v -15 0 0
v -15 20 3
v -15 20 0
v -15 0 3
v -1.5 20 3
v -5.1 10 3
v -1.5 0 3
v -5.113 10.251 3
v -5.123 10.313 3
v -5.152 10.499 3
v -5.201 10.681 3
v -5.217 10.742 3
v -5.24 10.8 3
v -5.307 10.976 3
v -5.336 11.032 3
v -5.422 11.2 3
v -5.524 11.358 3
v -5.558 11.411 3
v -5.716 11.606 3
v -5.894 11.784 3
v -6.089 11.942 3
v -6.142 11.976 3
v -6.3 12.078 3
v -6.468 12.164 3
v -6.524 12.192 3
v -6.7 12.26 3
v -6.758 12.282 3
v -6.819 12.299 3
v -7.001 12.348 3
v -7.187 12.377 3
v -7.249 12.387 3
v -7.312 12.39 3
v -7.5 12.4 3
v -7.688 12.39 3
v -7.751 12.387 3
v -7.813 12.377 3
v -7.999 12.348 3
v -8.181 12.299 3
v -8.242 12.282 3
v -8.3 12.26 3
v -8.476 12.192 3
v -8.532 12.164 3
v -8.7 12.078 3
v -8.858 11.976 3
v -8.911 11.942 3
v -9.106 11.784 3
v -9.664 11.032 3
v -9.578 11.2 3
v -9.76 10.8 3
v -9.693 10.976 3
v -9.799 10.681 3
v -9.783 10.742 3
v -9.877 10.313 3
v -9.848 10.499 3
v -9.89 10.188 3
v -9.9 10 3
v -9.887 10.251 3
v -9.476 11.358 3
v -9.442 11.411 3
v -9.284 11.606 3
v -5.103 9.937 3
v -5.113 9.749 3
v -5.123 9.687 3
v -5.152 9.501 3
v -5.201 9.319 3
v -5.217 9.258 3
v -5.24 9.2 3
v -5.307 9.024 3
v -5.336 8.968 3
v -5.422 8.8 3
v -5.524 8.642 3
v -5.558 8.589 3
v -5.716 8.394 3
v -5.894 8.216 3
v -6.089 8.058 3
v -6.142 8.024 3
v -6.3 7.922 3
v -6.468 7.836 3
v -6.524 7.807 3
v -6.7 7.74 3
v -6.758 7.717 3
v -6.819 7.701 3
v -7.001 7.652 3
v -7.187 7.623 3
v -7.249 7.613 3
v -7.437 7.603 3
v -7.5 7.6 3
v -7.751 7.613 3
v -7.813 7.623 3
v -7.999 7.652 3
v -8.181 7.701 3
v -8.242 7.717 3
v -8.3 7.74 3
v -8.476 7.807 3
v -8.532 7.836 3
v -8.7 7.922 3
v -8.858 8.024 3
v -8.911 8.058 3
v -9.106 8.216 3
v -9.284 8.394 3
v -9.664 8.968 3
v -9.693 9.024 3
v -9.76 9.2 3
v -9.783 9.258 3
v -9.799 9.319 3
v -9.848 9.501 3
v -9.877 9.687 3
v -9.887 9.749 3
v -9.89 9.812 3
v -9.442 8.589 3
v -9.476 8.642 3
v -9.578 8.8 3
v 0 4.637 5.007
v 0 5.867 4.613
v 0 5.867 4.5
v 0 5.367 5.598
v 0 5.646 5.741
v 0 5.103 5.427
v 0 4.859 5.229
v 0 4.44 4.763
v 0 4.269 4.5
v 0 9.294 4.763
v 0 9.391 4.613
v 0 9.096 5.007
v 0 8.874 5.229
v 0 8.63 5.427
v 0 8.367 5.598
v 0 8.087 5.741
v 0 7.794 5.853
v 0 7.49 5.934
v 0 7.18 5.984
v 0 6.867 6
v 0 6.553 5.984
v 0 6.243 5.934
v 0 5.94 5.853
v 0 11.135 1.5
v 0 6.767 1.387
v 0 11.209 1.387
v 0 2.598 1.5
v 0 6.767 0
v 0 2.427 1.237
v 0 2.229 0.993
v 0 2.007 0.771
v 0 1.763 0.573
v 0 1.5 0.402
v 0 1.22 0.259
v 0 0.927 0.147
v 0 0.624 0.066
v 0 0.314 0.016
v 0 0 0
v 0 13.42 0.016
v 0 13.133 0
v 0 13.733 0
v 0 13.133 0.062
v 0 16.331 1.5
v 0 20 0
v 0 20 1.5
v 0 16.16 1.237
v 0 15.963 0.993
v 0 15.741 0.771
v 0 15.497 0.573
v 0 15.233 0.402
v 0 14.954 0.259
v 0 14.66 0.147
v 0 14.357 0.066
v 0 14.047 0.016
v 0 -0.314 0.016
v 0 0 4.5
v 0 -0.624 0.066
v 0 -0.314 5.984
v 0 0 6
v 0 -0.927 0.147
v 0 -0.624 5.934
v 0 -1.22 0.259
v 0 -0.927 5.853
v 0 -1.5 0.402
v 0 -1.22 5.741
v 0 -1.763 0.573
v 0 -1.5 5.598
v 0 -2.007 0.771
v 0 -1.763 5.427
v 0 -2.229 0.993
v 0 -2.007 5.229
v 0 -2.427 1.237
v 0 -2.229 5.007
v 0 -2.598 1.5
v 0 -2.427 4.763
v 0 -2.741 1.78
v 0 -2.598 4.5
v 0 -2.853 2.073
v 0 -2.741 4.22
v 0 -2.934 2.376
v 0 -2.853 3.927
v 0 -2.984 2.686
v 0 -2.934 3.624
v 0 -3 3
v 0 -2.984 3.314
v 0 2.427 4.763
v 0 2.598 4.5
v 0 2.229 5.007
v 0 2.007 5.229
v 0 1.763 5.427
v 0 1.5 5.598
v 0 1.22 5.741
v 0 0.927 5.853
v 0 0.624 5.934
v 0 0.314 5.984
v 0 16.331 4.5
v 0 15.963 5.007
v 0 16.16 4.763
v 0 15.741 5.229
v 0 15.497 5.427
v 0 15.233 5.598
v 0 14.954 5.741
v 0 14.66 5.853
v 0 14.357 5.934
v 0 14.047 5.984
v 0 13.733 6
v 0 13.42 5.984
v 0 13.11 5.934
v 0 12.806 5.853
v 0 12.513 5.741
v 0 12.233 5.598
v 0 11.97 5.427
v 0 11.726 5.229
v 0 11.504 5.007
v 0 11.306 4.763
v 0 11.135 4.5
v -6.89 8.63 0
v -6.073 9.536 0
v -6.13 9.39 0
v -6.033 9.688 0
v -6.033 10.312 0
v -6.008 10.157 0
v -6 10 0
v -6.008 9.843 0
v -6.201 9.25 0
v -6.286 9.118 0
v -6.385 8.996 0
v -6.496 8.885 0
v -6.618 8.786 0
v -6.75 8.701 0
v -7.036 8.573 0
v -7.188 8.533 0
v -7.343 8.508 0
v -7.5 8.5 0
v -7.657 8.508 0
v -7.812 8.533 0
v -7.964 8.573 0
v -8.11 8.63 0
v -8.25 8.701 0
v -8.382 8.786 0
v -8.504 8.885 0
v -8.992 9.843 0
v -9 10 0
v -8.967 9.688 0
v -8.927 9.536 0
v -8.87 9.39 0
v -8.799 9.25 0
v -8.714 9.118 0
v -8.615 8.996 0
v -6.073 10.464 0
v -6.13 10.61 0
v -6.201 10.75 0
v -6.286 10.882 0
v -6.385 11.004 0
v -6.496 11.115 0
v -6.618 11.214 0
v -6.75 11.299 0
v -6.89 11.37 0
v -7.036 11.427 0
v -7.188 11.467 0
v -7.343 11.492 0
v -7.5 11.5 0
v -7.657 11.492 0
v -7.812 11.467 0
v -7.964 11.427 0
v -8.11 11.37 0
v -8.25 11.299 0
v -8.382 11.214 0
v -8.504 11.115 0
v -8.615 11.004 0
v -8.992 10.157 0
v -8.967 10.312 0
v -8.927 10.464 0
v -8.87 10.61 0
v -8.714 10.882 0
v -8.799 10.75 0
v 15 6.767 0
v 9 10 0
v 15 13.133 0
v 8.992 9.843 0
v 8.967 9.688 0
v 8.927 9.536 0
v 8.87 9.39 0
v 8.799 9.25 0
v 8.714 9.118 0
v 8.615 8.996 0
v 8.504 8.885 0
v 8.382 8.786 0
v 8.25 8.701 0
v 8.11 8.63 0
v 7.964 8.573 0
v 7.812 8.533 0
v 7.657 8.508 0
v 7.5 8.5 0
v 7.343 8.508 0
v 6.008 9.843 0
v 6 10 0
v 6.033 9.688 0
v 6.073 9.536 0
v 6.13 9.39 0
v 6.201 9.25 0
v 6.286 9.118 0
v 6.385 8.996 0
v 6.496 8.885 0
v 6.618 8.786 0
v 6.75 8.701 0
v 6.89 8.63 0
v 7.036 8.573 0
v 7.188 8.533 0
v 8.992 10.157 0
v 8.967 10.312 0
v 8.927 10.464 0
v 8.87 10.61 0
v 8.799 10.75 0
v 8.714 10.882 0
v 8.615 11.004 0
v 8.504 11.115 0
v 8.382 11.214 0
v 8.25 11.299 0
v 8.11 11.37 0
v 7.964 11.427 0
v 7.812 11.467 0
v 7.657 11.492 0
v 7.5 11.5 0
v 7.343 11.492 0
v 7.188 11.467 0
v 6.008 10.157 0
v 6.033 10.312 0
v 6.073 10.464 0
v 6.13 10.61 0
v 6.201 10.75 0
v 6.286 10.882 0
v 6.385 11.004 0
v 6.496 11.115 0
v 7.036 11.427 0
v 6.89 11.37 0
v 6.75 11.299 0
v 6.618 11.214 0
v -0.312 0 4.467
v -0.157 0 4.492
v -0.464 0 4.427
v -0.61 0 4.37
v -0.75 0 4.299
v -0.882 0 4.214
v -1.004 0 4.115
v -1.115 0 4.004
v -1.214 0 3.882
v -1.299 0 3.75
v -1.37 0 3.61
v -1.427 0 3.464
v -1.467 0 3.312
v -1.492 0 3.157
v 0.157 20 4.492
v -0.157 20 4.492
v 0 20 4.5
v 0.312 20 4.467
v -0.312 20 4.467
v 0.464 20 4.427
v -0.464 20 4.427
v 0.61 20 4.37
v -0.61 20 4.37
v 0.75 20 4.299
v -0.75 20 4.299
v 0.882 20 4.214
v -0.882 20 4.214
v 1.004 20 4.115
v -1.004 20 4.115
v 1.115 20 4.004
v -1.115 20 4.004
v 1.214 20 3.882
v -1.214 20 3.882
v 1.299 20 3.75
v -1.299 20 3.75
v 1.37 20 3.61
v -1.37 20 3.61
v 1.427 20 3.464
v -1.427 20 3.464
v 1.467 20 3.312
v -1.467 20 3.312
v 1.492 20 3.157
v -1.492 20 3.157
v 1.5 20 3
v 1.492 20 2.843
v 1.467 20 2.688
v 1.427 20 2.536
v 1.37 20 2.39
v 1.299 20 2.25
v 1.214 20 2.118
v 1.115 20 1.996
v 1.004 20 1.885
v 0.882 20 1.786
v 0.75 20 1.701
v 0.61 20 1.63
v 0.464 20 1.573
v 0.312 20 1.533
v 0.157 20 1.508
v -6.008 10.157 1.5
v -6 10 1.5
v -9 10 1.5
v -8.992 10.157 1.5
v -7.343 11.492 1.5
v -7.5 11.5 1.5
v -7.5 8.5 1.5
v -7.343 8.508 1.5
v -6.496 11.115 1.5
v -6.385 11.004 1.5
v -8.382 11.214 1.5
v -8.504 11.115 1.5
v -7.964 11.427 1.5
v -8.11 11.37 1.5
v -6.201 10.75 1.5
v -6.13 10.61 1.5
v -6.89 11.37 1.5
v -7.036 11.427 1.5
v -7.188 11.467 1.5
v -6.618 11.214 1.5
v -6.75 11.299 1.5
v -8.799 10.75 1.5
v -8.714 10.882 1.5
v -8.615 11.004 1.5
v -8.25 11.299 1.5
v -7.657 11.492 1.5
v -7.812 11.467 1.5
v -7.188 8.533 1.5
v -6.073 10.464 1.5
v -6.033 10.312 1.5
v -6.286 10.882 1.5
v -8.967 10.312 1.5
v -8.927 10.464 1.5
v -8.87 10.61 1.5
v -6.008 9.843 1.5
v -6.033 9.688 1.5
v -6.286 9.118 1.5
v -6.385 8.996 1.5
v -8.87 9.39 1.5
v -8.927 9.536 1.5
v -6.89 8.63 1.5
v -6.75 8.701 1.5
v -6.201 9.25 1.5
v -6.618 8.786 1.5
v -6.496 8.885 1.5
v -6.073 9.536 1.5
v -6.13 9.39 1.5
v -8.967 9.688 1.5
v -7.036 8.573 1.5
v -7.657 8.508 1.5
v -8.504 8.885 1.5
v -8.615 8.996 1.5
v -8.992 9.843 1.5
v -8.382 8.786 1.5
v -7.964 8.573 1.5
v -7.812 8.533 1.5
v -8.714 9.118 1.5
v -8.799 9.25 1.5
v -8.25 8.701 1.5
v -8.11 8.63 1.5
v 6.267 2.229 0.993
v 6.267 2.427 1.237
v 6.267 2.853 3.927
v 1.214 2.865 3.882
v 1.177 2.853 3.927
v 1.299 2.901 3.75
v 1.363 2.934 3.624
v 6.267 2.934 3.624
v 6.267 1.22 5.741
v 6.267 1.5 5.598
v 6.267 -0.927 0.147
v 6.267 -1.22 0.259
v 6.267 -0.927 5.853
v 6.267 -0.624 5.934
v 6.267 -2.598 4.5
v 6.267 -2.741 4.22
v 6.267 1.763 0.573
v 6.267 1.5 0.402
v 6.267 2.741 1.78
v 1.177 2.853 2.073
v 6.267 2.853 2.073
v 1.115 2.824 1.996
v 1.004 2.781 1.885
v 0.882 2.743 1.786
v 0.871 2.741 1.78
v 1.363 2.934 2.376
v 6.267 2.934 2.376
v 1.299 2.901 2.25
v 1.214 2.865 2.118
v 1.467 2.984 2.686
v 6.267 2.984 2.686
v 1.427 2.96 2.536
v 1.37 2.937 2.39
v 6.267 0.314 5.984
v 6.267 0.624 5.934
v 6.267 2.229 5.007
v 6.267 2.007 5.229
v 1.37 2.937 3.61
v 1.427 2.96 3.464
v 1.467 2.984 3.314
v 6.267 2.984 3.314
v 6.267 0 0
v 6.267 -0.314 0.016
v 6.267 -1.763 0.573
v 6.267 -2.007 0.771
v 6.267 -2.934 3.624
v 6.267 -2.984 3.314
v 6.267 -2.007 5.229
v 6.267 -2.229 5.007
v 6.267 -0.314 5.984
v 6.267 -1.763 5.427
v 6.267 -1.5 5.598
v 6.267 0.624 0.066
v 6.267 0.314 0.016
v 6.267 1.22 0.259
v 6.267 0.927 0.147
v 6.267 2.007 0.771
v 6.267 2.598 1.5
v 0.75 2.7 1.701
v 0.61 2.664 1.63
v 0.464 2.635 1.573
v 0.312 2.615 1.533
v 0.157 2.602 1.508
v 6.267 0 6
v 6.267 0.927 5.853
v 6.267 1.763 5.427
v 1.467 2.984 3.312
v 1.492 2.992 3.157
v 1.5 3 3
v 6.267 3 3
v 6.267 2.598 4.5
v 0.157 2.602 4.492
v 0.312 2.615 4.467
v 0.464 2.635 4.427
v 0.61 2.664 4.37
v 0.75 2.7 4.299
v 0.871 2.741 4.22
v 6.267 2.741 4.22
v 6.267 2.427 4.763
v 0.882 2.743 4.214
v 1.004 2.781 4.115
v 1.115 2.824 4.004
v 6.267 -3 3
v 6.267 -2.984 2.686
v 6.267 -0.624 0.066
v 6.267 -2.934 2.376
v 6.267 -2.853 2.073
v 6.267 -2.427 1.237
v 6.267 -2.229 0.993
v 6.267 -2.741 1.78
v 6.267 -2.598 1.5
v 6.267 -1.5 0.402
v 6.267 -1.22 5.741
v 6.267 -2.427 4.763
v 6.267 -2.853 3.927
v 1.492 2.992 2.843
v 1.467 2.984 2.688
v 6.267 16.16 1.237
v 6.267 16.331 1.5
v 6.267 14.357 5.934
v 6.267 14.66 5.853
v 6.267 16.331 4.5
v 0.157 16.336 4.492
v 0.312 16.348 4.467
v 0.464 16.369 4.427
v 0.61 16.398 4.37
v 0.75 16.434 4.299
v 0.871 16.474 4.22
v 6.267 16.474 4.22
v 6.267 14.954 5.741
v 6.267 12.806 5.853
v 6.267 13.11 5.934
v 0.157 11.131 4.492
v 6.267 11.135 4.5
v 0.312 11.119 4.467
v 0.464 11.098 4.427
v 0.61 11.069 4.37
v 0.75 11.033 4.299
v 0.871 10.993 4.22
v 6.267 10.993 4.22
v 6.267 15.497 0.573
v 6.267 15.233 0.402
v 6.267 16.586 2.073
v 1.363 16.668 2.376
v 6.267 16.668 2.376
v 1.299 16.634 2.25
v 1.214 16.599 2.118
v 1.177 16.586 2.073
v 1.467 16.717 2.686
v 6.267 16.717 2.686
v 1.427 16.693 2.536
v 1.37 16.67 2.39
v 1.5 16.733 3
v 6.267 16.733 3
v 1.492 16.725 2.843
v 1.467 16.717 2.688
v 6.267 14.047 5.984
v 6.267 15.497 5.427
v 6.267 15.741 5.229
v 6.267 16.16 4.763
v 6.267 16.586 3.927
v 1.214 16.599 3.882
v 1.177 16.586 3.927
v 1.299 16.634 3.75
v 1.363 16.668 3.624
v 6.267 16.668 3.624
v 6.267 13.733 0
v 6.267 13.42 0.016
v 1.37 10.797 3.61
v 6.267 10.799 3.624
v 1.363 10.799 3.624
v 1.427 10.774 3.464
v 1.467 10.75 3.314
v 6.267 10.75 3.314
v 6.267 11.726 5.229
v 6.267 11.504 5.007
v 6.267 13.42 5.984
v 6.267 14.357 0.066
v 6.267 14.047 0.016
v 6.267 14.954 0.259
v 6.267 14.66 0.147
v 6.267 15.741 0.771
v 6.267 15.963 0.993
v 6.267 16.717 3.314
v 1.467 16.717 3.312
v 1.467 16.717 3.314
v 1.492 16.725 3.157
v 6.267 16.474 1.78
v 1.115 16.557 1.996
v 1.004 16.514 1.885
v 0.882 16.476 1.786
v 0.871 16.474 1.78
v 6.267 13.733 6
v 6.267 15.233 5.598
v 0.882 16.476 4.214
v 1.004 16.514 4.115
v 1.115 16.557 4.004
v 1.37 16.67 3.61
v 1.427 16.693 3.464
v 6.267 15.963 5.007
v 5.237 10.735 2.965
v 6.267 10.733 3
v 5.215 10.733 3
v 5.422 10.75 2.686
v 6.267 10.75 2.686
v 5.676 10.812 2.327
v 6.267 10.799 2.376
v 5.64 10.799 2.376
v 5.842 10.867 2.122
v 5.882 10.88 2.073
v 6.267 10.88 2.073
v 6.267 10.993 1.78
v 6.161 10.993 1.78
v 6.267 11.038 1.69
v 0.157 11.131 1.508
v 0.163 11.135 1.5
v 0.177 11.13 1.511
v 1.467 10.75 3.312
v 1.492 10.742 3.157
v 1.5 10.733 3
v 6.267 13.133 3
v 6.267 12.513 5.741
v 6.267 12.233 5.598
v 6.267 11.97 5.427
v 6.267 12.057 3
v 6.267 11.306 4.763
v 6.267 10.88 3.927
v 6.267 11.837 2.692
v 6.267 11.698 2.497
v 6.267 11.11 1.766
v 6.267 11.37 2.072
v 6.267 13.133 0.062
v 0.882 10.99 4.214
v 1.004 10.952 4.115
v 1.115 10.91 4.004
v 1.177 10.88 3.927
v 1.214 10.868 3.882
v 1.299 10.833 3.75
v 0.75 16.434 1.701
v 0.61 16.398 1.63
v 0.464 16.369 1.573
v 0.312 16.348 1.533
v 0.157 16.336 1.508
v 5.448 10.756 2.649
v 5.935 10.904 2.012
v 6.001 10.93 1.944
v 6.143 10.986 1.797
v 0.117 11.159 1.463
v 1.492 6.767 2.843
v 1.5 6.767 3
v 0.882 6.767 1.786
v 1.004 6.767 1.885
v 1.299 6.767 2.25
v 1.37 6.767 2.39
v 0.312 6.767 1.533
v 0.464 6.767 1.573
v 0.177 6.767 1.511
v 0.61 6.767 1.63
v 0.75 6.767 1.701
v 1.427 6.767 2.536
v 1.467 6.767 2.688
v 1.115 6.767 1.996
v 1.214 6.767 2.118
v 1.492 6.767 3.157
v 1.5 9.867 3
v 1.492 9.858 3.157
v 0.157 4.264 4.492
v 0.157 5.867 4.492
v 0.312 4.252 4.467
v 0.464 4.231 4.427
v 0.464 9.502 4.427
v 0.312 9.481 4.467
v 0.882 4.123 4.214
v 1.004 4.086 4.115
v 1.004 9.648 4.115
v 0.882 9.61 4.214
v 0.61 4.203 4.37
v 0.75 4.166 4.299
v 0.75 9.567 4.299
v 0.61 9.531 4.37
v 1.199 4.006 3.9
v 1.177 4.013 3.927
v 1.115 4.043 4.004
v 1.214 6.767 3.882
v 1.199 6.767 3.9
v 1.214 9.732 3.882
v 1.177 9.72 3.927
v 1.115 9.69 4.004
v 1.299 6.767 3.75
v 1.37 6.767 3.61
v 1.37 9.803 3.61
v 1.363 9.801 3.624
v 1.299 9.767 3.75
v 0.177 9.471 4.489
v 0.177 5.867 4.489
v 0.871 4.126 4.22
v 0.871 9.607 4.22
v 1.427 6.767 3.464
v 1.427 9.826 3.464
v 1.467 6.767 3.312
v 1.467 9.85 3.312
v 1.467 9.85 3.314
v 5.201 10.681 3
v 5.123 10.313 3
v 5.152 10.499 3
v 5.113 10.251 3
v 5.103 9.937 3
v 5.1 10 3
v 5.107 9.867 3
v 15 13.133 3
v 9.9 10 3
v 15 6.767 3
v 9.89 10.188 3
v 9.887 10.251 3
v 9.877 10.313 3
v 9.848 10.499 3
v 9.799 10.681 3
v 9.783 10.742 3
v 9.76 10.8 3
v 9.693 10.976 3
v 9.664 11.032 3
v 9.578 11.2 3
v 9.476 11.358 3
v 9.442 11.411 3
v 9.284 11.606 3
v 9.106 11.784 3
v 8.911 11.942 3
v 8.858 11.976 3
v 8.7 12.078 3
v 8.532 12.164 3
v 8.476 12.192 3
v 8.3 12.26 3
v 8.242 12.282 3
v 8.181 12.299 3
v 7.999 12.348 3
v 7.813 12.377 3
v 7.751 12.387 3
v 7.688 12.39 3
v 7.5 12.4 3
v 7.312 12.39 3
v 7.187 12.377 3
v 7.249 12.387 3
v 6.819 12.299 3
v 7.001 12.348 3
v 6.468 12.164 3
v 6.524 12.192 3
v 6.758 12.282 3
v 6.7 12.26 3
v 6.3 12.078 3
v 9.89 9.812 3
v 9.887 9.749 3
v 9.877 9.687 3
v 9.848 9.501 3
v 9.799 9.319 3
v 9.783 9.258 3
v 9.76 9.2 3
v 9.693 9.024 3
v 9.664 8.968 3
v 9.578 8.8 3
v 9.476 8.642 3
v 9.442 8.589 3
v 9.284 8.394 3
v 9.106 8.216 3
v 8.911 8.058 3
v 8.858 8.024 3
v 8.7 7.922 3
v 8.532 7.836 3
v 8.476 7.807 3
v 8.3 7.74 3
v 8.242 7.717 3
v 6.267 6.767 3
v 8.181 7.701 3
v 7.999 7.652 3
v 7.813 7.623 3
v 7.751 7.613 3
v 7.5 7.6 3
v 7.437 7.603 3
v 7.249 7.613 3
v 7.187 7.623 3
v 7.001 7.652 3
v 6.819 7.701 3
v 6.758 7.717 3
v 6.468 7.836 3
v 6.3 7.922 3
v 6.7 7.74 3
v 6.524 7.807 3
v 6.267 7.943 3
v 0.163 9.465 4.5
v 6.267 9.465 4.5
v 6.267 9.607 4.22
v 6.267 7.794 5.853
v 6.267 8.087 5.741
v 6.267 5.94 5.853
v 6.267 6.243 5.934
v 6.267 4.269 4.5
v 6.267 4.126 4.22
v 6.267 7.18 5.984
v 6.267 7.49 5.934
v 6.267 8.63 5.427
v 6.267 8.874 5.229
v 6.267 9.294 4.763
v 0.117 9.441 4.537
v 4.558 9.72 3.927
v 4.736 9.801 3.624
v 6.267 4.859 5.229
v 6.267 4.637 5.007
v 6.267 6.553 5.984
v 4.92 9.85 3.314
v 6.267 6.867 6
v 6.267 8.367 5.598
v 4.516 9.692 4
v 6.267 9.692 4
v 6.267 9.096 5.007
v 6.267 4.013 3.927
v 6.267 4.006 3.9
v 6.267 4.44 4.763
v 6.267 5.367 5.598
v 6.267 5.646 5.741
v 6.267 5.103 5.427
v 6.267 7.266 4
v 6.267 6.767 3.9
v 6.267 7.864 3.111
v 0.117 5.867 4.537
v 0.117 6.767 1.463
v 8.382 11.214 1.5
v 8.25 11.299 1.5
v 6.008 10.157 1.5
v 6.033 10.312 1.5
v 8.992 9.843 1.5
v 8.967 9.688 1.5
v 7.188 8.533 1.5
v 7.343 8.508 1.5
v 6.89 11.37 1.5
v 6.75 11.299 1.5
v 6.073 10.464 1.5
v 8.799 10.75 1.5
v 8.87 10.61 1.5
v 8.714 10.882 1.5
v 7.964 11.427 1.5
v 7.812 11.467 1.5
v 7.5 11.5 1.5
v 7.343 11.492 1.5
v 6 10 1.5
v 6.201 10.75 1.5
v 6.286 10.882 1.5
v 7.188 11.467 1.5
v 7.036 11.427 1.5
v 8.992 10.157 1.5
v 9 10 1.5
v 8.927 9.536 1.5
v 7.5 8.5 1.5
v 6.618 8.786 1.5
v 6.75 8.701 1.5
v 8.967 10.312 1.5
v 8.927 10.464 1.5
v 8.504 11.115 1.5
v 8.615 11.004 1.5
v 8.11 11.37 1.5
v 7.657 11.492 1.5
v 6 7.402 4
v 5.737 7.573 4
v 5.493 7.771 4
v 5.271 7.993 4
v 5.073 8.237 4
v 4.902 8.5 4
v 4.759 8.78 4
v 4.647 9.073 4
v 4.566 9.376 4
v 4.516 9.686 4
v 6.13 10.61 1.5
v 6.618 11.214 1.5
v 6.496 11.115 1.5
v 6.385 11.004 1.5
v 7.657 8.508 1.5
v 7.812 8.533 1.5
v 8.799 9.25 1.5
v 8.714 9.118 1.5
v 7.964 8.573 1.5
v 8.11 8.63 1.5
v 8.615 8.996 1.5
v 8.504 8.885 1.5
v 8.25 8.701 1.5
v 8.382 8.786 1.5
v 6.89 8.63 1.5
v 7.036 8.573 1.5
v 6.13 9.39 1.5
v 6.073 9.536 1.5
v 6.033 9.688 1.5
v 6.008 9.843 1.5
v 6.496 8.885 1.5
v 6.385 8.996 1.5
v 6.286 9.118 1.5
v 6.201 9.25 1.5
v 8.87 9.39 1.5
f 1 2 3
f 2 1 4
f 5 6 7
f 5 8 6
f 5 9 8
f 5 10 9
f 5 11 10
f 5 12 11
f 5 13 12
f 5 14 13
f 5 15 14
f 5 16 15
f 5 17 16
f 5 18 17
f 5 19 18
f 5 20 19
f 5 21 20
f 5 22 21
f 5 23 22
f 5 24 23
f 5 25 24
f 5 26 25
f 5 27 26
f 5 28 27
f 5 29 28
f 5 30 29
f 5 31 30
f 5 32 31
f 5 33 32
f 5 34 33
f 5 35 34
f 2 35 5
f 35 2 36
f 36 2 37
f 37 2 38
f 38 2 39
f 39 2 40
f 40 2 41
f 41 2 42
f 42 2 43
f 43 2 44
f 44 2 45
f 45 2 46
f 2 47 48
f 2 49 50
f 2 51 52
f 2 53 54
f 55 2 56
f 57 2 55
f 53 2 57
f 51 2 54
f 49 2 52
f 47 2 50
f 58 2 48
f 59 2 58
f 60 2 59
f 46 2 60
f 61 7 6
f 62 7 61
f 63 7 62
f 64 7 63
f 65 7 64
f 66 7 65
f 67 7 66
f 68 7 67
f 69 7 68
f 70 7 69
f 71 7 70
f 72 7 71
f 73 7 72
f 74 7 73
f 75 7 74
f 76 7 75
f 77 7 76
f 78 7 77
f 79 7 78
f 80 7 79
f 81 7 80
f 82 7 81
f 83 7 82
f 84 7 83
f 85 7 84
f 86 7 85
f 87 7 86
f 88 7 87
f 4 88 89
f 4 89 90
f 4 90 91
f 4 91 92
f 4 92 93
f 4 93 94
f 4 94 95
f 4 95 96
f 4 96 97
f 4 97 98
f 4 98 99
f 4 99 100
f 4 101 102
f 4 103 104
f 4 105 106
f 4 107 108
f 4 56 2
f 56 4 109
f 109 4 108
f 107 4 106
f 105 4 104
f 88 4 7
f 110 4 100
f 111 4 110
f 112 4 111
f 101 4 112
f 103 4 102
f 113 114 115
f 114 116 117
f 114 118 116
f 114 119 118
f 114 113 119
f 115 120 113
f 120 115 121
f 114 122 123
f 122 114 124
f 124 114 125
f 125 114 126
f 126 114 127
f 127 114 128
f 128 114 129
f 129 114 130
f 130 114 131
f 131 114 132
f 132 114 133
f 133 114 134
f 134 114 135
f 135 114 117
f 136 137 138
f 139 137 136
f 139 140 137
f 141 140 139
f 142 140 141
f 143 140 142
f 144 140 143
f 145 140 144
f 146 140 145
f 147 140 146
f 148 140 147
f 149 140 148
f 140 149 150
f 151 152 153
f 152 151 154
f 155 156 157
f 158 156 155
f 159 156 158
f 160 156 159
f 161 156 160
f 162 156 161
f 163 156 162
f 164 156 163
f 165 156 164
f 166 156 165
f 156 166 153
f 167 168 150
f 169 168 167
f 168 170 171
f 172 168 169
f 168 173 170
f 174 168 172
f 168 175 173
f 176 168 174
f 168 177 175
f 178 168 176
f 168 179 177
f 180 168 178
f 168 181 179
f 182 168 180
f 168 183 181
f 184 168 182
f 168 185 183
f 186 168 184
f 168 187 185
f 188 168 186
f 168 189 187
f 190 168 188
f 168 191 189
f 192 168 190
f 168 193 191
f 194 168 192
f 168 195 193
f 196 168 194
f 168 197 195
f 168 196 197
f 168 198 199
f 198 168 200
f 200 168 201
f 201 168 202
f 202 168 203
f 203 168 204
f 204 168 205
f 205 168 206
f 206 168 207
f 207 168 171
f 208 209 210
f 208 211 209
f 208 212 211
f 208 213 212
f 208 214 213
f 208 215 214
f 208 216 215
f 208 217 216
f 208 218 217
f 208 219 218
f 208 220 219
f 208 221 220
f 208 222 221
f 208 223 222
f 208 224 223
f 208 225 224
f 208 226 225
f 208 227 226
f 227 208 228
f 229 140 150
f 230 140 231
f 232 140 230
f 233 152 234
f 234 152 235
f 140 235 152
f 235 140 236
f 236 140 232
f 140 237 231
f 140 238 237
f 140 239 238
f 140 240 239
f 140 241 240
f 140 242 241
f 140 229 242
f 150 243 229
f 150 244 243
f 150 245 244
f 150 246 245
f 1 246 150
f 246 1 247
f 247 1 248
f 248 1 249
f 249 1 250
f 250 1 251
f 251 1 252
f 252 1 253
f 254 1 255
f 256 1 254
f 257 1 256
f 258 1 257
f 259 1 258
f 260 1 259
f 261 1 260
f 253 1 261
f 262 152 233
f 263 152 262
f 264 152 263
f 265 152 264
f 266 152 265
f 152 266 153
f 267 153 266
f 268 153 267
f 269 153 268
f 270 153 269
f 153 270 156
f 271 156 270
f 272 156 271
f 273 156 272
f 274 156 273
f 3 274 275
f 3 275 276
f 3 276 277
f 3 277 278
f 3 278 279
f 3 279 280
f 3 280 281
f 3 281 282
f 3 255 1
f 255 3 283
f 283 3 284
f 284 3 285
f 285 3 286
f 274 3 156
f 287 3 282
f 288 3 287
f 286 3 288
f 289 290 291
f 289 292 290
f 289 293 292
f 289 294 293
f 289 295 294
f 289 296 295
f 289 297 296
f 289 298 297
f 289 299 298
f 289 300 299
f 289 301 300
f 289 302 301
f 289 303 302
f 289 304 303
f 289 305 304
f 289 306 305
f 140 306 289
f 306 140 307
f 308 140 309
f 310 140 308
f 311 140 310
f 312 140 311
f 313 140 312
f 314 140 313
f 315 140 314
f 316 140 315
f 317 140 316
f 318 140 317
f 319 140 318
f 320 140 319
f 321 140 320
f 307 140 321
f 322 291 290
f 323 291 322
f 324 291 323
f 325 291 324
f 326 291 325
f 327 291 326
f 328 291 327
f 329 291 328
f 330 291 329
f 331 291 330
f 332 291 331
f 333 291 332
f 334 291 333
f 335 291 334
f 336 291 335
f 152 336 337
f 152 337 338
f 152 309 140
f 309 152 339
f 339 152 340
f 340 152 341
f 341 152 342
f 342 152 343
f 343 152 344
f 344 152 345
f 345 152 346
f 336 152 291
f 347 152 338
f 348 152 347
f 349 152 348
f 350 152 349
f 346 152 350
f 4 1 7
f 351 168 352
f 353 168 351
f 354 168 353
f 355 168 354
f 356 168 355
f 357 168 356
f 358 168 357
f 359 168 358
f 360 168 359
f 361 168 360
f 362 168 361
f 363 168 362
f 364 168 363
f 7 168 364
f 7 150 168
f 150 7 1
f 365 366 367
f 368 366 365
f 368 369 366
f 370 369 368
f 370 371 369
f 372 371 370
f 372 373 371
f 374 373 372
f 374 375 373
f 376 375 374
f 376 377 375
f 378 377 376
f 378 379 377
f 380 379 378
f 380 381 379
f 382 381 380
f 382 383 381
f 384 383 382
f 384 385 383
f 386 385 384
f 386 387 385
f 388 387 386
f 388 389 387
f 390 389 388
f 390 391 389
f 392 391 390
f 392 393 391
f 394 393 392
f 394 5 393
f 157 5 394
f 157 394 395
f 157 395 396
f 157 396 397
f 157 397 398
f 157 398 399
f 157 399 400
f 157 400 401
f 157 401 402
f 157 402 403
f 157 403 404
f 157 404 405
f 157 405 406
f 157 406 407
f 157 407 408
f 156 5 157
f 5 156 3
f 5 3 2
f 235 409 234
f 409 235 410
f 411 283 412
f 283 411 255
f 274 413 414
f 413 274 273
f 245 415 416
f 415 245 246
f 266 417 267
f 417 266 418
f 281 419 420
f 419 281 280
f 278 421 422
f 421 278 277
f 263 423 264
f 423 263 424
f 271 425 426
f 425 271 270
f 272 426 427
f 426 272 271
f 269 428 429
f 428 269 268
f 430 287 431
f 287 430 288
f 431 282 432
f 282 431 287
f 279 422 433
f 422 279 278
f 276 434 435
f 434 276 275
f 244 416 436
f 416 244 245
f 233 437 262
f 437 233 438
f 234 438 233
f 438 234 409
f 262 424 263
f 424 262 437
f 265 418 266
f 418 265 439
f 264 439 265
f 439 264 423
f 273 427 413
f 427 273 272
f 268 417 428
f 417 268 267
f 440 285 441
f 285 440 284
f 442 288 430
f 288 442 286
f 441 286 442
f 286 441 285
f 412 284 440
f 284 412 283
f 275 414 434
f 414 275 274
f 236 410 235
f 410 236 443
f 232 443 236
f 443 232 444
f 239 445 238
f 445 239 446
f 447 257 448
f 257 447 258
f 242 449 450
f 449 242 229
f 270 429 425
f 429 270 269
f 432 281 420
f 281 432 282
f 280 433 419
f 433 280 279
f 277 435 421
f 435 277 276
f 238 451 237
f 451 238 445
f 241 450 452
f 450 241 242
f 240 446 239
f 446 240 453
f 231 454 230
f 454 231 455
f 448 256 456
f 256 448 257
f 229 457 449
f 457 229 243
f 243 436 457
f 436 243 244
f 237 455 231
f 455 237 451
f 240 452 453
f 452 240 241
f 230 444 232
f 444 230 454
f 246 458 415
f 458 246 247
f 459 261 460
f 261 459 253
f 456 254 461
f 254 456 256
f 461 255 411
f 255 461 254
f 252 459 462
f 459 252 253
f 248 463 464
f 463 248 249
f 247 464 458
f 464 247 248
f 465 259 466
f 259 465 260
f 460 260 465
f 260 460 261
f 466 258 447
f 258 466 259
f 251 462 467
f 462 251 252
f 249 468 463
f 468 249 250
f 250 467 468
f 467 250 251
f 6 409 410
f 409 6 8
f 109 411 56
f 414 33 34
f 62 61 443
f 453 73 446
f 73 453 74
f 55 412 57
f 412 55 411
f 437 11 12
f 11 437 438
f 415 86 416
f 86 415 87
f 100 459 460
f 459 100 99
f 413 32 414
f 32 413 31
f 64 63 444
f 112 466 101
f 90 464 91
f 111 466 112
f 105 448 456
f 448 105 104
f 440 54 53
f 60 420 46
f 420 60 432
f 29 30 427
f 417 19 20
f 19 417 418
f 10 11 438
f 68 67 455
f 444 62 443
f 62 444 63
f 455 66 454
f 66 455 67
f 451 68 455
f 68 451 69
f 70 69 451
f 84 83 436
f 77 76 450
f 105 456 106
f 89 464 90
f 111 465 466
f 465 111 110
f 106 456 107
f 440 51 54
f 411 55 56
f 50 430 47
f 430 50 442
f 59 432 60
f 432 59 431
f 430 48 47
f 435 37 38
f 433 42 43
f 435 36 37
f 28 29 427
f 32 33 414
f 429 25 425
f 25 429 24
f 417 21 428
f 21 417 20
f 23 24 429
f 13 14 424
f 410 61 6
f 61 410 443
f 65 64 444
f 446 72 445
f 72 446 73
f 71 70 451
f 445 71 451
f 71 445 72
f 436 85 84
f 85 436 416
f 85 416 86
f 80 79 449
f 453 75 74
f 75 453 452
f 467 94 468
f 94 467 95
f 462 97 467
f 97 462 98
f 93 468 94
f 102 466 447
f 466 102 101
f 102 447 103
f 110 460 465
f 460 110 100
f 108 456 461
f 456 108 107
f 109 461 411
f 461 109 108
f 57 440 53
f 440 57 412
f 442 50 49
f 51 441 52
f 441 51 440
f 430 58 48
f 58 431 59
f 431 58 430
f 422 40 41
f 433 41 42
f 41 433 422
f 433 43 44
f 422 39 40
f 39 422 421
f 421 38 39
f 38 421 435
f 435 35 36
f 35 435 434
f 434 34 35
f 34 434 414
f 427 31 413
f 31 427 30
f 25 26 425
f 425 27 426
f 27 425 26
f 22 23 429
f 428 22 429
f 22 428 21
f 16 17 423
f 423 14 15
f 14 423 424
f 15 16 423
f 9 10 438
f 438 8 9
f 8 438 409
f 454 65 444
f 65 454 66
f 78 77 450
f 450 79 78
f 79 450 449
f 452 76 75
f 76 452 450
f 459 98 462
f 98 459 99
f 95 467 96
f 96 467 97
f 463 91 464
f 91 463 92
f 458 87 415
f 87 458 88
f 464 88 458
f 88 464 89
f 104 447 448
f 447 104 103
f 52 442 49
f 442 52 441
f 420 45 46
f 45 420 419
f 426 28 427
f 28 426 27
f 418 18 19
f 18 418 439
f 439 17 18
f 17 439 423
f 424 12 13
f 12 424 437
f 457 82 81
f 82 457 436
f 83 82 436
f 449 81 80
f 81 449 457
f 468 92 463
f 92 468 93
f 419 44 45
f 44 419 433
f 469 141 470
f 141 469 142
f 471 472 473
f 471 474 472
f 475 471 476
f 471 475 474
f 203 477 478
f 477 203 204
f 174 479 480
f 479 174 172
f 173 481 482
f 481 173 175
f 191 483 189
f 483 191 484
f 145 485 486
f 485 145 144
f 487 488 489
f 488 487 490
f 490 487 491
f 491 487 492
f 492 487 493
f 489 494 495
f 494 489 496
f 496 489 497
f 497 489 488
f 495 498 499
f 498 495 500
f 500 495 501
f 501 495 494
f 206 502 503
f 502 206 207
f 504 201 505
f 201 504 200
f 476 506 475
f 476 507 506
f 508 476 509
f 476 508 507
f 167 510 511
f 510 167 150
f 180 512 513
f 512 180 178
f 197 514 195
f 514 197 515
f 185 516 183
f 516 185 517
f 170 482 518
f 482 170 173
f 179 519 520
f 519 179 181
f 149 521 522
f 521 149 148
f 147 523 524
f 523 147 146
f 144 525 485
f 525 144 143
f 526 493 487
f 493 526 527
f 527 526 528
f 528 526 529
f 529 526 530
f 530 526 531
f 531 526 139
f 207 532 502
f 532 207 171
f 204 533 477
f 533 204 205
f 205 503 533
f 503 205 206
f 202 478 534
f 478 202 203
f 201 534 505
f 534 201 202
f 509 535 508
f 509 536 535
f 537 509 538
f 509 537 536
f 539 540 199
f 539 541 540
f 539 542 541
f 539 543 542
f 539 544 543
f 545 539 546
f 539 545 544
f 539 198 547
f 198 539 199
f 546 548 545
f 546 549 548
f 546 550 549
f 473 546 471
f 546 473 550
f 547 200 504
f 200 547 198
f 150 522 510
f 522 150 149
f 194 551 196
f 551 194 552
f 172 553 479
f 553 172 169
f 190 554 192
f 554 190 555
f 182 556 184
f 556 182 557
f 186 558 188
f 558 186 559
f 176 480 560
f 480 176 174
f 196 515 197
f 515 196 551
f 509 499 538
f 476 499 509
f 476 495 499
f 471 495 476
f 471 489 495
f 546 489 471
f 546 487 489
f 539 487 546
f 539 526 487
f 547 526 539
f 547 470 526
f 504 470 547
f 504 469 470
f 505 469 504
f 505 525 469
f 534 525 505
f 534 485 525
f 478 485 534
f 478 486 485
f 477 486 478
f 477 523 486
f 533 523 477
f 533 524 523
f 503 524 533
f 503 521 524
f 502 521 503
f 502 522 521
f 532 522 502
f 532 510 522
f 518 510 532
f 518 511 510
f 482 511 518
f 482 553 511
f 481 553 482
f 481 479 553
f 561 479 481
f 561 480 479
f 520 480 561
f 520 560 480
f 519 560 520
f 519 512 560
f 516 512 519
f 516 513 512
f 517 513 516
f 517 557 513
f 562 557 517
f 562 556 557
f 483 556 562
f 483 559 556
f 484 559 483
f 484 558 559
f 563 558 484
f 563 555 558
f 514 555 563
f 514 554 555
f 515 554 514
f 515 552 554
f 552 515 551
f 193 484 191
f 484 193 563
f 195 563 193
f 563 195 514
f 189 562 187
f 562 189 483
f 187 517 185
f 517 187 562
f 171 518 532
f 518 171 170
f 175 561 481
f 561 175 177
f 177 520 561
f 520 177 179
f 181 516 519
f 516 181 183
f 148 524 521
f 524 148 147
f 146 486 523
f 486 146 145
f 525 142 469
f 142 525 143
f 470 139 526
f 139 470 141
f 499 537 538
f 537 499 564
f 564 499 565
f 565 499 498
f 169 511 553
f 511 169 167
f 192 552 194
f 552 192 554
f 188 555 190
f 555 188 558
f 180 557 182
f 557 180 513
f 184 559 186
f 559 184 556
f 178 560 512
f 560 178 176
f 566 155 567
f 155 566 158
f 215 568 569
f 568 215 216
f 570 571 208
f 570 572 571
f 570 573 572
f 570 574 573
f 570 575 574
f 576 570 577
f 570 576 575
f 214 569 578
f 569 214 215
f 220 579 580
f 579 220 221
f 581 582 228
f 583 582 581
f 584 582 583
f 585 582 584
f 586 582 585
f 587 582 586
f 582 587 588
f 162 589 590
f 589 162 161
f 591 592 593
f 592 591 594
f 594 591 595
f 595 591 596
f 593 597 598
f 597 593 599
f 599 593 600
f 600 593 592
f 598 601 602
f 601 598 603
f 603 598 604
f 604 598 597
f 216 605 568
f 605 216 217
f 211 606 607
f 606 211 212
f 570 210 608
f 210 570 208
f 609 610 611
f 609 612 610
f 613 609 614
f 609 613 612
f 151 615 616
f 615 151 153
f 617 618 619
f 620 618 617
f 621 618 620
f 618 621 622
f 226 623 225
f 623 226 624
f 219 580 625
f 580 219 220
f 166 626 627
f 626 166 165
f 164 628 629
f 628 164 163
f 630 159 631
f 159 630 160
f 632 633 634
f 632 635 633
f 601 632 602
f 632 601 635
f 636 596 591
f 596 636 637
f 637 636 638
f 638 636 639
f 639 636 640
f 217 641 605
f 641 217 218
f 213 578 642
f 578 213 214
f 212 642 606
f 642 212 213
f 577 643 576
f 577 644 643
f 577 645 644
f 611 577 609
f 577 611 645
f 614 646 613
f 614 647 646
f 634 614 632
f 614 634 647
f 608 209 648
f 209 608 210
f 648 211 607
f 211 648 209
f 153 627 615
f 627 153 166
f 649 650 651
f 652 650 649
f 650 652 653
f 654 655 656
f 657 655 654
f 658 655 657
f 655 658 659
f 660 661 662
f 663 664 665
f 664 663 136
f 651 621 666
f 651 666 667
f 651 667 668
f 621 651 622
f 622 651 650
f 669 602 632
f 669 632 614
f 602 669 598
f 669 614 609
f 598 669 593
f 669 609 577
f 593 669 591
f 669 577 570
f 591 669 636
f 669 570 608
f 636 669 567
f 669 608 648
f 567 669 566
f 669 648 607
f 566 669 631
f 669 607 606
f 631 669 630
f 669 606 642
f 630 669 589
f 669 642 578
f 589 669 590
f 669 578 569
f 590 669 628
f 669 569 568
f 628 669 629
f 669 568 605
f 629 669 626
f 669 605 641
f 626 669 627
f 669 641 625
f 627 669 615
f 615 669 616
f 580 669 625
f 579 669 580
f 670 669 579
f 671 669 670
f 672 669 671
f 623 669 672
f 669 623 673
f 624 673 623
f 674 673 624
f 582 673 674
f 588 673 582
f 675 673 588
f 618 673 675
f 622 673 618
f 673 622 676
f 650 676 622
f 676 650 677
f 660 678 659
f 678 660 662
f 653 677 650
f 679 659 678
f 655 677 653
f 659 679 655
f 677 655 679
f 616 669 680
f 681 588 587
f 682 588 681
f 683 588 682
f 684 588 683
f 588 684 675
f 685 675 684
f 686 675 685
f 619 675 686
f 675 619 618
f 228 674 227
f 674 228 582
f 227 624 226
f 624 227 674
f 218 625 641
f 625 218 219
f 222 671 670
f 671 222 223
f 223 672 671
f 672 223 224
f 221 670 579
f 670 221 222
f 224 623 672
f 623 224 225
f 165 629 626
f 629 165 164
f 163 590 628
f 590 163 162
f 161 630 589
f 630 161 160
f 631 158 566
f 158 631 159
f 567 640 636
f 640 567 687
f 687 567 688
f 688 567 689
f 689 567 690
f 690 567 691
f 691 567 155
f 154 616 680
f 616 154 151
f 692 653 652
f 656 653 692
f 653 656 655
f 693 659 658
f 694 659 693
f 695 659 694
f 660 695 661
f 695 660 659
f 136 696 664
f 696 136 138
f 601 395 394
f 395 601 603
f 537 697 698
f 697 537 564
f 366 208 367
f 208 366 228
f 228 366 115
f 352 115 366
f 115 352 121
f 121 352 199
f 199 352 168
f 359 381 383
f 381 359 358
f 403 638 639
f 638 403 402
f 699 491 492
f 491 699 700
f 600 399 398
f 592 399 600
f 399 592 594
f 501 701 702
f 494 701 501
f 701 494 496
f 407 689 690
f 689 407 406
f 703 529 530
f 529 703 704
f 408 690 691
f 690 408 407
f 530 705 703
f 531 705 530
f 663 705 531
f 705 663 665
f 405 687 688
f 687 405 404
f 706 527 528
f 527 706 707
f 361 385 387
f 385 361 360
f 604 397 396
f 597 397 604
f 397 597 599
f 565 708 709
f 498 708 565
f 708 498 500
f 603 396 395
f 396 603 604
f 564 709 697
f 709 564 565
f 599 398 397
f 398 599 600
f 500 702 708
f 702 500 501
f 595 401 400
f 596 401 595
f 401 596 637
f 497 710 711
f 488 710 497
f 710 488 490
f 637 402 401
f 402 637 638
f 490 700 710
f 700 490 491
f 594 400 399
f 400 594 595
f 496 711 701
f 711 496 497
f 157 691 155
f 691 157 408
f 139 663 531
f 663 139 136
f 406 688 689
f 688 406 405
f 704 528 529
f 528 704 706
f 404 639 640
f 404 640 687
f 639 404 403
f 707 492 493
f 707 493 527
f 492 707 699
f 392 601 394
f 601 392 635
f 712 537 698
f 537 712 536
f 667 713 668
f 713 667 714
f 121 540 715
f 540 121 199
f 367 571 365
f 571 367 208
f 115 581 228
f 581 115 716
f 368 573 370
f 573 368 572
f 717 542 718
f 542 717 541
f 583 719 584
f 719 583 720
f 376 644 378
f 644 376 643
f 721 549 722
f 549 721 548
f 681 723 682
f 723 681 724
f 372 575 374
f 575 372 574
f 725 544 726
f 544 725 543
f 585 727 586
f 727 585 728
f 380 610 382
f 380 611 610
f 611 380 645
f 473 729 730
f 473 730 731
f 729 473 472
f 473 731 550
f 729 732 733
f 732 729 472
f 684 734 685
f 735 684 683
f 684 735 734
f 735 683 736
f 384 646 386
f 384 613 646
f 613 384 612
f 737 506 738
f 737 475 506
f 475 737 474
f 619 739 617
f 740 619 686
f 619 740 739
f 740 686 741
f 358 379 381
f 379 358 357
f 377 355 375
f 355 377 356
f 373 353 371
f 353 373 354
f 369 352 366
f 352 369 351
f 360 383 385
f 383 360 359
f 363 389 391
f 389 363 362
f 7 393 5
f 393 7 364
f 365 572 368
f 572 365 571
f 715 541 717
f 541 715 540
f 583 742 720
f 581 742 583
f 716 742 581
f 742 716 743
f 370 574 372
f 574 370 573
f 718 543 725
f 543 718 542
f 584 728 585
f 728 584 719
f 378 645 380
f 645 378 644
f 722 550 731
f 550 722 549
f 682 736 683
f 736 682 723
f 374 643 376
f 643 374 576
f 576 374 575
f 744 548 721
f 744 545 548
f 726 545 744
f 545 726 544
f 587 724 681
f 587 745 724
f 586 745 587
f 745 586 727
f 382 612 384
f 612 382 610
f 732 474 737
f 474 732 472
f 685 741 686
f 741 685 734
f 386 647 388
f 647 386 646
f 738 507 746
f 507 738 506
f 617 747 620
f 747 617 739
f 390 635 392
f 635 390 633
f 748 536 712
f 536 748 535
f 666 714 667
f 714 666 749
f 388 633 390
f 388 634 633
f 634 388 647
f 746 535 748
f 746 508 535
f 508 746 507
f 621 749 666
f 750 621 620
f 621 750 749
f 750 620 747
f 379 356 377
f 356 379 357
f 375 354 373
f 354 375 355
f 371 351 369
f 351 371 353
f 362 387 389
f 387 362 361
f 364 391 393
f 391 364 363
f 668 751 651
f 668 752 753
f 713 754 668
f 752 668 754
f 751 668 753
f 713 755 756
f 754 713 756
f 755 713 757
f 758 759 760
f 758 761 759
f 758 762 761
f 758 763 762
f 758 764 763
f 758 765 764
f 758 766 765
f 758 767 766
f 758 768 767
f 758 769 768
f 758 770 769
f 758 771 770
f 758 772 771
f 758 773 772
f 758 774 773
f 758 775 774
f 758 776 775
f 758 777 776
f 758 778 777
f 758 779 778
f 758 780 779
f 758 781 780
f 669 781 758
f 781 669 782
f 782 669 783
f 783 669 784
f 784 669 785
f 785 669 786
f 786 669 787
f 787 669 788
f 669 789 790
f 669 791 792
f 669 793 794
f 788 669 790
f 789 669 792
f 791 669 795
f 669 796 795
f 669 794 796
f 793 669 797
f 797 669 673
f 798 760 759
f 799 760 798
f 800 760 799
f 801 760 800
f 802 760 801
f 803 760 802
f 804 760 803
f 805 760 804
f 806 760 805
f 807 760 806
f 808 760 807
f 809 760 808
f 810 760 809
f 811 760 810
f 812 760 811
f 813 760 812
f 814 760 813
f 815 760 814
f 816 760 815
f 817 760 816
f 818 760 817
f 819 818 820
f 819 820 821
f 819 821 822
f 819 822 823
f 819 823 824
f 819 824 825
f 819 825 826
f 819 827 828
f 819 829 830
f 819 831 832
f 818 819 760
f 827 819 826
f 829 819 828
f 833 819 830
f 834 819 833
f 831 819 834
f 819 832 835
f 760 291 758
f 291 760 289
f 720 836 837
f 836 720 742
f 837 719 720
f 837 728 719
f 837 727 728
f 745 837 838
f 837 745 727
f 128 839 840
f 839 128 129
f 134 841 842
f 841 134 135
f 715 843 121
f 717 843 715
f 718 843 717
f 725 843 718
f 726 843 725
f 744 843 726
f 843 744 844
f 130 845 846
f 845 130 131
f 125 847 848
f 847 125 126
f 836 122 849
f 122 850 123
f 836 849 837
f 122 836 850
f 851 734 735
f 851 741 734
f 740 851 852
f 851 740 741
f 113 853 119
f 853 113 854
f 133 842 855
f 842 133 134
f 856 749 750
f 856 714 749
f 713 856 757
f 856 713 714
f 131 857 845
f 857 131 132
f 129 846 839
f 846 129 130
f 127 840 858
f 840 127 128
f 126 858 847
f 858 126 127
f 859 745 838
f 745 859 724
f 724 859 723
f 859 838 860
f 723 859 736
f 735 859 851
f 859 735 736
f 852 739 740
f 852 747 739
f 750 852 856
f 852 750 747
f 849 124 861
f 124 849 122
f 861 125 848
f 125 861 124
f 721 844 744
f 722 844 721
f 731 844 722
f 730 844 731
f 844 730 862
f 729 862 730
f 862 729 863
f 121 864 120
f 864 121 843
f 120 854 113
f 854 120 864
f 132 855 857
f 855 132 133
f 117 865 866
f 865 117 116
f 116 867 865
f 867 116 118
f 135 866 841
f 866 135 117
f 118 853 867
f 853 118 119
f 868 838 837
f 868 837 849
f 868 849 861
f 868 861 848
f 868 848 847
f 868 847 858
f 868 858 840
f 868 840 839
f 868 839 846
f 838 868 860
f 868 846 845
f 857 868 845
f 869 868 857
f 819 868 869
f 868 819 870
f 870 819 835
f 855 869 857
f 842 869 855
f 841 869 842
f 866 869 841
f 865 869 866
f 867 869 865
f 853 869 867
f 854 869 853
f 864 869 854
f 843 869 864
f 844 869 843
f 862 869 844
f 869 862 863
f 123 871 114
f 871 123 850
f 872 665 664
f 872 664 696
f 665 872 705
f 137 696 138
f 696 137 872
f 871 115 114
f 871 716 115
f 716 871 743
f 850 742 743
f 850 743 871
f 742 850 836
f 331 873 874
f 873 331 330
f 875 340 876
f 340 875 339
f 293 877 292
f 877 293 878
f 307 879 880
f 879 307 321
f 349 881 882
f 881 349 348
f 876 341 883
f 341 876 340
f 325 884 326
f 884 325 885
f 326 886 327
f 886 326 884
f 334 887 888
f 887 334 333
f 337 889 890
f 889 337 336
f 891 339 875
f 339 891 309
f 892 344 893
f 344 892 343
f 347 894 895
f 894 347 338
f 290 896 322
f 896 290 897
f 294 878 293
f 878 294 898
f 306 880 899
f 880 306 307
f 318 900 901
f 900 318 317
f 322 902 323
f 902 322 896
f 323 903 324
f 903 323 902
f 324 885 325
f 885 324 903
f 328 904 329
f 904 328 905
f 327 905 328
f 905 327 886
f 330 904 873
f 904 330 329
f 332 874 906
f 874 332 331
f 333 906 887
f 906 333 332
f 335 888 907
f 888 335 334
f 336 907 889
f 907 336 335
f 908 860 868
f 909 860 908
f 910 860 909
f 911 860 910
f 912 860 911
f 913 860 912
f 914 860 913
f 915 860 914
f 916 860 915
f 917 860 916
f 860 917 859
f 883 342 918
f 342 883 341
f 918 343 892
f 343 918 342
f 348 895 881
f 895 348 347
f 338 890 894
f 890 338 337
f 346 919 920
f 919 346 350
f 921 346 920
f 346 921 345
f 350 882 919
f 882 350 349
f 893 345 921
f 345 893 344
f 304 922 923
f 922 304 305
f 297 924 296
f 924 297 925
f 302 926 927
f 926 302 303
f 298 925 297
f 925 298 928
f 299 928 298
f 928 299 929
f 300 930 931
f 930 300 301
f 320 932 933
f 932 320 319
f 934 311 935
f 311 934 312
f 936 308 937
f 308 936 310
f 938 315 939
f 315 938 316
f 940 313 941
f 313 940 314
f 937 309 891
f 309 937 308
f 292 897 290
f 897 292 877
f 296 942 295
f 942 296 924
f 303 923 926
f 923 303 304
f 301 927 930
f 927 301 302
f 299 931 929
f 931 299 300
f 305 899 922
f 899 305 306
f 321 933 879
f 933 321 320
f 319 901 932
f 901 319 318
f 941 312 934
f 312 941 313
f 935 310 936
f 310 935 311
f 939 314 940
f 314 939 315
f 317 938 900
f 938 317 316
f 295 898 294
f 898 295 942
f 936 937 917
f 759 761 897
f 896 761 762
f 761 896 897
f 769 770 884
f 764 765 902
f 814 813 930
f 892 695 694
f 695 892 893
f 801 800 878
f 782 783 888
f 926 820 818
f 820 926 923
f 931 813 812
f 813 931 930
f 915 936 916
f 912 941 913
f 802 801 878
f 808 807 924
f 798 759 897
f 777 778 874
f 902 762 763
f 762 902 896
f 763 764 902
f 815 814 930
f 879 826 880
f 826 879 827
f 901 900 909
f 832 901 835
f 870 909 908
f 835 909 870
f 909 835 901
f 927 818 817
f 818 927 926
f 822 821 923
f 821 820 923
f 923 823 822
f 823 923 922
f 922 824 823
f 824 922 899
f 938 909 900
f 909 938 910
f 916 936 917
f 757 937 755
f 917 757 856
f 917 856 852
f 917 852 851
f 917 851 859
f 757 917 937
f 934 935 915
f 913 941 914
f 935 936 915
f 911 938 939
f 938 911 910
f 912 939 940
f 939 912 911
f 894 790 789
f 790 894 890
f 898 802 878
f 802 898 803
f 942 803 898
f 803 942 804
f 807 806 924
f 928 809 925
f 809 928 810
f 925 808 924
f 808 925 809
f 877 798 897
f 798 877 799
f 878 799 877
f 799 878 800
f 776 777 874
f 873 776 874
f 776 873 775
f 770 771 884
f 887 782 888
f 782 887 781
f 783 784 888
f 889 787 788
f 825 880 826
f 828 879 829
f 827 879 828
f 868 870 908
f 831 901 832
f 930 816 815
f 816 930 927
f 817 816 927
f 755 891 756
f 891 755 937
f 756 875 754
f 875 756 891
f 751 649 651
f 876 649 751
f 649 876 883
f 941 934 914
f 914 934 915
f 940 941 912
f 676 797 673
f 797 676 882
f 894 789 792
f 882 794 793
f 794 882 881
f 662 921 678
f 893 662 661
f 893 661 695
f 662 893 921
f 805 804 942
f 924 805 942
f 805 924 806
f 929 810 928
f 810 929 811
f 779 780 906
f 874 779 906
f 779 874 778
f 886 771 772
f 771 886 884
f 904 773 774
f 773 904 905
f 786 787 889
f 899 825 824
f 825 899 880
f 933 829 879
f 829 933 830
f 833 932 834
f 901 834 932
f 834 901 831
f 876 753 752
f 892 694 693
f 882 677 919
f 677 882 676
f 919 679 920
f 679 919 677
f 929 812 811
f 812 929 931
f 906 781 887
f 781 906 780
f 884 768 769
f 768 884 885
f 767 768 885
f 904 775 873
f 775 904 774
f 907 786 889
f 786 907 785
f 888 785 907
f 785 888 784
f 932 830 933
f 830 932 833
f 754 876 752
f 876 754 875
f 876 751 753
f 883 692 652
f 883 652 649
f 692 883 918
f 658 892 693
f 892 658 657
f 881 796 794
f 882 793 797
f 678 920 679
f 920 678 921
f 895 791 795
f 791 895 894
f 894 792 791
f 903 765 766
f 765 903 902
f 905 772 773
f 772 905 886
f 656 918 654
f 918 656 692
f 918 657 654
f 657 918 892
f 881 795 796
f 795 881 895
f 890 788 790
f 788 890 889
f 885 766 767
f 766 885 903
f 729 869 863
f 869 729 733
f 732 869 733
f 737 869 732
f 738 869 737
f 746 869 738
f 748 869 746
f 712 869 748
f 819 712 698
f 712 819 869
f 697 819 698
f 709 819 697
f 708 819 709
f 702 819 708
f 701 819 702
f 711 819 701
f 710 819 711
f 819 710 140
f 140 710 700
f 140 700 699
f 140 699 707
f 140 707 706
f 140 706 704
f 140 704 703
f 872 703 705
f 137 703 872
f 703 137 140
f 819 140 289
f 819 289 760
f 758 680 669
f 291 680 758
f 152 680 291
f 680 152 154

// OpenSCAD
// ==========================================
// Parametric Print-in-Place Hinge (3mm Walls)
// ==========================================

// --- Dimensions ---
// Total width of the hinge along the pin axis
total_width = 20;

// Thickness of the mounting leaves (matches box wall thickness)
wall_thickness = 3;

// Length of the leaf extending from the hinge
leaf_length = 15;

// Diameter of mounting screw holes
hole_diameter = 3;

// --- Tolerance Settings ---
// Internal gap between moving parts (0.4 - 0.5 is usually good for PLA)
clearance = 0.4;

// Gap between the side-by-side knuckles
knuckle_gap = 0.6; 

// Smoothness of curves
$fn = 60;

// --- Derived Calculations ---
knuckle_outer_r = wall_thickness; // Radius is same as thickness (6mm diam total)
pin_r = wall_thickness / 2;       // 3mm diam pin
z_offset = 0;                     // Vertical position base

// Width of the individual knuckle segments
// We have 2 outer segments and 1 inner segment
segment_width = (total_width - (2 * knuckle_gap)) / 3;

// ==========================================
// Main Render
// ==========================================

union() {
    // Part 1: Outer Knuckles + Pin + Leaf 1
    color("RoyalBlue") 
        part_outer();

    // Part 2: Inner Knuckle + Leaf 2
    color("Orange") 
        part_inner();
}


// ==========================================
// Modules
// ==========================================

module part_outer() {
    union() {
        // 1. The Leaf
        difference() {
            translate([-leaf_length, 0, 0])
                cube([leaf_length, total_width, wall_thickness]);
            
            // Mounting Holes
            translate([-leaf_length/2, total_width/2, -1])
                cylinder(h = wall_thickness + 2, d = hole_diameter);
            
            // Chamfer for screw head
            translate([-leaf_length/2, total_width/2, wall_thickness - 1.5])
                cylinder(h = 2.5, d1 = hole_diameter, d2 = hole_diameter + 3);
        }

        // 2. The Outer Knuckles
        // Segment 1 (Bottom/Front in Y)
        translate([0, 0, wall_thickness])
        rotate([0, 90, 0])
            cylinder(r=knuckle_outer_r, h=segment_width);
            
        // Segment 2 (Top/Back in Y)
        translate([0, total_width - segment_width, wall_thickness])
        rotate([0, 90, 0])
            cylinder(r=knuckle_outer_r, h=segment_width);
        
        // 3. The Pin (Runs through the whole length)
        translate([0, 0, wall_thickness])
        rotate([-90, 0, 0])
            cylinder(r=pin_r, h=total_width);
            
        // Connection from Leaf to Knuckle
        // We add a filler block to ensure the cylinder touches the leaf firmly
        translate([-wall_thickness, 0, 0])
            cube([wall_thickness, segment_width, wall_thickness]);

        translate([-wall_thickness, total_width - segment_width, 0])
            cube([wall_thickness, segment_width, wall_thickness]);
    }
}

module part_inner() {
    
    // Y Position of the central segment
    y_pos = segment_width + knuckle_gap;
    
    difference() {
        union() {
            // 1. The Leaf
            translate([0, 0, 0])
                cube([leaf_length, total_width, wall_thickness]);

            // 2. The Inner Knuckle
            translate([0, y_pos, wall_thickness])
            rotate([0, 90, 0])
                cylinder(r=knuckle_outer_r, h=segment_width);
            
            // Connection from Leaf to Knuckle
            translate([0, y_pos, 0])
                cube([wall_thickness, segment_width, wall_thickness]);
        }
        
        // CUTOUTS
        
        // 1. Hole for the Pin (Pin radius + clearance)
        translate([-1, y_pos - 1, wall_thickness]) // -1 extends cut region
        rotate([-90, 0, 0])
            cylinder(r=pin_r + clearance, h=segment_width + 2);
            
        // 2. Mounting Hole
        translate([leaf_length/2, total_width/2, -1])
            cylinder(h = wall_thickness + 2, d = hole_diameter);
            
        // 3. Chamfer for screw head
        translate([leaf_length/2, total_width/2, wall_thickness - 1.5]) // Countersink depth
            cylinder(h = 2.5, d1 = hole_diameter, d2 = hole_diameter + 3);

        // 4. Cutout for the neighbor outer knuckles (creates the gaps)
        // We cut away the leaf material where the outer knuckles need to sit
        translate([-0.1, -0.1, -0.1])
            cube([leaf_length+1, y_pos, wall_thickness+1]);
            
        translate([-0.1, y_pos + segment_width, -0.1])
             cube([leaf_length+1, segment_width + knuckle_gap + 1, wall_thickness+1]);
    }
}
